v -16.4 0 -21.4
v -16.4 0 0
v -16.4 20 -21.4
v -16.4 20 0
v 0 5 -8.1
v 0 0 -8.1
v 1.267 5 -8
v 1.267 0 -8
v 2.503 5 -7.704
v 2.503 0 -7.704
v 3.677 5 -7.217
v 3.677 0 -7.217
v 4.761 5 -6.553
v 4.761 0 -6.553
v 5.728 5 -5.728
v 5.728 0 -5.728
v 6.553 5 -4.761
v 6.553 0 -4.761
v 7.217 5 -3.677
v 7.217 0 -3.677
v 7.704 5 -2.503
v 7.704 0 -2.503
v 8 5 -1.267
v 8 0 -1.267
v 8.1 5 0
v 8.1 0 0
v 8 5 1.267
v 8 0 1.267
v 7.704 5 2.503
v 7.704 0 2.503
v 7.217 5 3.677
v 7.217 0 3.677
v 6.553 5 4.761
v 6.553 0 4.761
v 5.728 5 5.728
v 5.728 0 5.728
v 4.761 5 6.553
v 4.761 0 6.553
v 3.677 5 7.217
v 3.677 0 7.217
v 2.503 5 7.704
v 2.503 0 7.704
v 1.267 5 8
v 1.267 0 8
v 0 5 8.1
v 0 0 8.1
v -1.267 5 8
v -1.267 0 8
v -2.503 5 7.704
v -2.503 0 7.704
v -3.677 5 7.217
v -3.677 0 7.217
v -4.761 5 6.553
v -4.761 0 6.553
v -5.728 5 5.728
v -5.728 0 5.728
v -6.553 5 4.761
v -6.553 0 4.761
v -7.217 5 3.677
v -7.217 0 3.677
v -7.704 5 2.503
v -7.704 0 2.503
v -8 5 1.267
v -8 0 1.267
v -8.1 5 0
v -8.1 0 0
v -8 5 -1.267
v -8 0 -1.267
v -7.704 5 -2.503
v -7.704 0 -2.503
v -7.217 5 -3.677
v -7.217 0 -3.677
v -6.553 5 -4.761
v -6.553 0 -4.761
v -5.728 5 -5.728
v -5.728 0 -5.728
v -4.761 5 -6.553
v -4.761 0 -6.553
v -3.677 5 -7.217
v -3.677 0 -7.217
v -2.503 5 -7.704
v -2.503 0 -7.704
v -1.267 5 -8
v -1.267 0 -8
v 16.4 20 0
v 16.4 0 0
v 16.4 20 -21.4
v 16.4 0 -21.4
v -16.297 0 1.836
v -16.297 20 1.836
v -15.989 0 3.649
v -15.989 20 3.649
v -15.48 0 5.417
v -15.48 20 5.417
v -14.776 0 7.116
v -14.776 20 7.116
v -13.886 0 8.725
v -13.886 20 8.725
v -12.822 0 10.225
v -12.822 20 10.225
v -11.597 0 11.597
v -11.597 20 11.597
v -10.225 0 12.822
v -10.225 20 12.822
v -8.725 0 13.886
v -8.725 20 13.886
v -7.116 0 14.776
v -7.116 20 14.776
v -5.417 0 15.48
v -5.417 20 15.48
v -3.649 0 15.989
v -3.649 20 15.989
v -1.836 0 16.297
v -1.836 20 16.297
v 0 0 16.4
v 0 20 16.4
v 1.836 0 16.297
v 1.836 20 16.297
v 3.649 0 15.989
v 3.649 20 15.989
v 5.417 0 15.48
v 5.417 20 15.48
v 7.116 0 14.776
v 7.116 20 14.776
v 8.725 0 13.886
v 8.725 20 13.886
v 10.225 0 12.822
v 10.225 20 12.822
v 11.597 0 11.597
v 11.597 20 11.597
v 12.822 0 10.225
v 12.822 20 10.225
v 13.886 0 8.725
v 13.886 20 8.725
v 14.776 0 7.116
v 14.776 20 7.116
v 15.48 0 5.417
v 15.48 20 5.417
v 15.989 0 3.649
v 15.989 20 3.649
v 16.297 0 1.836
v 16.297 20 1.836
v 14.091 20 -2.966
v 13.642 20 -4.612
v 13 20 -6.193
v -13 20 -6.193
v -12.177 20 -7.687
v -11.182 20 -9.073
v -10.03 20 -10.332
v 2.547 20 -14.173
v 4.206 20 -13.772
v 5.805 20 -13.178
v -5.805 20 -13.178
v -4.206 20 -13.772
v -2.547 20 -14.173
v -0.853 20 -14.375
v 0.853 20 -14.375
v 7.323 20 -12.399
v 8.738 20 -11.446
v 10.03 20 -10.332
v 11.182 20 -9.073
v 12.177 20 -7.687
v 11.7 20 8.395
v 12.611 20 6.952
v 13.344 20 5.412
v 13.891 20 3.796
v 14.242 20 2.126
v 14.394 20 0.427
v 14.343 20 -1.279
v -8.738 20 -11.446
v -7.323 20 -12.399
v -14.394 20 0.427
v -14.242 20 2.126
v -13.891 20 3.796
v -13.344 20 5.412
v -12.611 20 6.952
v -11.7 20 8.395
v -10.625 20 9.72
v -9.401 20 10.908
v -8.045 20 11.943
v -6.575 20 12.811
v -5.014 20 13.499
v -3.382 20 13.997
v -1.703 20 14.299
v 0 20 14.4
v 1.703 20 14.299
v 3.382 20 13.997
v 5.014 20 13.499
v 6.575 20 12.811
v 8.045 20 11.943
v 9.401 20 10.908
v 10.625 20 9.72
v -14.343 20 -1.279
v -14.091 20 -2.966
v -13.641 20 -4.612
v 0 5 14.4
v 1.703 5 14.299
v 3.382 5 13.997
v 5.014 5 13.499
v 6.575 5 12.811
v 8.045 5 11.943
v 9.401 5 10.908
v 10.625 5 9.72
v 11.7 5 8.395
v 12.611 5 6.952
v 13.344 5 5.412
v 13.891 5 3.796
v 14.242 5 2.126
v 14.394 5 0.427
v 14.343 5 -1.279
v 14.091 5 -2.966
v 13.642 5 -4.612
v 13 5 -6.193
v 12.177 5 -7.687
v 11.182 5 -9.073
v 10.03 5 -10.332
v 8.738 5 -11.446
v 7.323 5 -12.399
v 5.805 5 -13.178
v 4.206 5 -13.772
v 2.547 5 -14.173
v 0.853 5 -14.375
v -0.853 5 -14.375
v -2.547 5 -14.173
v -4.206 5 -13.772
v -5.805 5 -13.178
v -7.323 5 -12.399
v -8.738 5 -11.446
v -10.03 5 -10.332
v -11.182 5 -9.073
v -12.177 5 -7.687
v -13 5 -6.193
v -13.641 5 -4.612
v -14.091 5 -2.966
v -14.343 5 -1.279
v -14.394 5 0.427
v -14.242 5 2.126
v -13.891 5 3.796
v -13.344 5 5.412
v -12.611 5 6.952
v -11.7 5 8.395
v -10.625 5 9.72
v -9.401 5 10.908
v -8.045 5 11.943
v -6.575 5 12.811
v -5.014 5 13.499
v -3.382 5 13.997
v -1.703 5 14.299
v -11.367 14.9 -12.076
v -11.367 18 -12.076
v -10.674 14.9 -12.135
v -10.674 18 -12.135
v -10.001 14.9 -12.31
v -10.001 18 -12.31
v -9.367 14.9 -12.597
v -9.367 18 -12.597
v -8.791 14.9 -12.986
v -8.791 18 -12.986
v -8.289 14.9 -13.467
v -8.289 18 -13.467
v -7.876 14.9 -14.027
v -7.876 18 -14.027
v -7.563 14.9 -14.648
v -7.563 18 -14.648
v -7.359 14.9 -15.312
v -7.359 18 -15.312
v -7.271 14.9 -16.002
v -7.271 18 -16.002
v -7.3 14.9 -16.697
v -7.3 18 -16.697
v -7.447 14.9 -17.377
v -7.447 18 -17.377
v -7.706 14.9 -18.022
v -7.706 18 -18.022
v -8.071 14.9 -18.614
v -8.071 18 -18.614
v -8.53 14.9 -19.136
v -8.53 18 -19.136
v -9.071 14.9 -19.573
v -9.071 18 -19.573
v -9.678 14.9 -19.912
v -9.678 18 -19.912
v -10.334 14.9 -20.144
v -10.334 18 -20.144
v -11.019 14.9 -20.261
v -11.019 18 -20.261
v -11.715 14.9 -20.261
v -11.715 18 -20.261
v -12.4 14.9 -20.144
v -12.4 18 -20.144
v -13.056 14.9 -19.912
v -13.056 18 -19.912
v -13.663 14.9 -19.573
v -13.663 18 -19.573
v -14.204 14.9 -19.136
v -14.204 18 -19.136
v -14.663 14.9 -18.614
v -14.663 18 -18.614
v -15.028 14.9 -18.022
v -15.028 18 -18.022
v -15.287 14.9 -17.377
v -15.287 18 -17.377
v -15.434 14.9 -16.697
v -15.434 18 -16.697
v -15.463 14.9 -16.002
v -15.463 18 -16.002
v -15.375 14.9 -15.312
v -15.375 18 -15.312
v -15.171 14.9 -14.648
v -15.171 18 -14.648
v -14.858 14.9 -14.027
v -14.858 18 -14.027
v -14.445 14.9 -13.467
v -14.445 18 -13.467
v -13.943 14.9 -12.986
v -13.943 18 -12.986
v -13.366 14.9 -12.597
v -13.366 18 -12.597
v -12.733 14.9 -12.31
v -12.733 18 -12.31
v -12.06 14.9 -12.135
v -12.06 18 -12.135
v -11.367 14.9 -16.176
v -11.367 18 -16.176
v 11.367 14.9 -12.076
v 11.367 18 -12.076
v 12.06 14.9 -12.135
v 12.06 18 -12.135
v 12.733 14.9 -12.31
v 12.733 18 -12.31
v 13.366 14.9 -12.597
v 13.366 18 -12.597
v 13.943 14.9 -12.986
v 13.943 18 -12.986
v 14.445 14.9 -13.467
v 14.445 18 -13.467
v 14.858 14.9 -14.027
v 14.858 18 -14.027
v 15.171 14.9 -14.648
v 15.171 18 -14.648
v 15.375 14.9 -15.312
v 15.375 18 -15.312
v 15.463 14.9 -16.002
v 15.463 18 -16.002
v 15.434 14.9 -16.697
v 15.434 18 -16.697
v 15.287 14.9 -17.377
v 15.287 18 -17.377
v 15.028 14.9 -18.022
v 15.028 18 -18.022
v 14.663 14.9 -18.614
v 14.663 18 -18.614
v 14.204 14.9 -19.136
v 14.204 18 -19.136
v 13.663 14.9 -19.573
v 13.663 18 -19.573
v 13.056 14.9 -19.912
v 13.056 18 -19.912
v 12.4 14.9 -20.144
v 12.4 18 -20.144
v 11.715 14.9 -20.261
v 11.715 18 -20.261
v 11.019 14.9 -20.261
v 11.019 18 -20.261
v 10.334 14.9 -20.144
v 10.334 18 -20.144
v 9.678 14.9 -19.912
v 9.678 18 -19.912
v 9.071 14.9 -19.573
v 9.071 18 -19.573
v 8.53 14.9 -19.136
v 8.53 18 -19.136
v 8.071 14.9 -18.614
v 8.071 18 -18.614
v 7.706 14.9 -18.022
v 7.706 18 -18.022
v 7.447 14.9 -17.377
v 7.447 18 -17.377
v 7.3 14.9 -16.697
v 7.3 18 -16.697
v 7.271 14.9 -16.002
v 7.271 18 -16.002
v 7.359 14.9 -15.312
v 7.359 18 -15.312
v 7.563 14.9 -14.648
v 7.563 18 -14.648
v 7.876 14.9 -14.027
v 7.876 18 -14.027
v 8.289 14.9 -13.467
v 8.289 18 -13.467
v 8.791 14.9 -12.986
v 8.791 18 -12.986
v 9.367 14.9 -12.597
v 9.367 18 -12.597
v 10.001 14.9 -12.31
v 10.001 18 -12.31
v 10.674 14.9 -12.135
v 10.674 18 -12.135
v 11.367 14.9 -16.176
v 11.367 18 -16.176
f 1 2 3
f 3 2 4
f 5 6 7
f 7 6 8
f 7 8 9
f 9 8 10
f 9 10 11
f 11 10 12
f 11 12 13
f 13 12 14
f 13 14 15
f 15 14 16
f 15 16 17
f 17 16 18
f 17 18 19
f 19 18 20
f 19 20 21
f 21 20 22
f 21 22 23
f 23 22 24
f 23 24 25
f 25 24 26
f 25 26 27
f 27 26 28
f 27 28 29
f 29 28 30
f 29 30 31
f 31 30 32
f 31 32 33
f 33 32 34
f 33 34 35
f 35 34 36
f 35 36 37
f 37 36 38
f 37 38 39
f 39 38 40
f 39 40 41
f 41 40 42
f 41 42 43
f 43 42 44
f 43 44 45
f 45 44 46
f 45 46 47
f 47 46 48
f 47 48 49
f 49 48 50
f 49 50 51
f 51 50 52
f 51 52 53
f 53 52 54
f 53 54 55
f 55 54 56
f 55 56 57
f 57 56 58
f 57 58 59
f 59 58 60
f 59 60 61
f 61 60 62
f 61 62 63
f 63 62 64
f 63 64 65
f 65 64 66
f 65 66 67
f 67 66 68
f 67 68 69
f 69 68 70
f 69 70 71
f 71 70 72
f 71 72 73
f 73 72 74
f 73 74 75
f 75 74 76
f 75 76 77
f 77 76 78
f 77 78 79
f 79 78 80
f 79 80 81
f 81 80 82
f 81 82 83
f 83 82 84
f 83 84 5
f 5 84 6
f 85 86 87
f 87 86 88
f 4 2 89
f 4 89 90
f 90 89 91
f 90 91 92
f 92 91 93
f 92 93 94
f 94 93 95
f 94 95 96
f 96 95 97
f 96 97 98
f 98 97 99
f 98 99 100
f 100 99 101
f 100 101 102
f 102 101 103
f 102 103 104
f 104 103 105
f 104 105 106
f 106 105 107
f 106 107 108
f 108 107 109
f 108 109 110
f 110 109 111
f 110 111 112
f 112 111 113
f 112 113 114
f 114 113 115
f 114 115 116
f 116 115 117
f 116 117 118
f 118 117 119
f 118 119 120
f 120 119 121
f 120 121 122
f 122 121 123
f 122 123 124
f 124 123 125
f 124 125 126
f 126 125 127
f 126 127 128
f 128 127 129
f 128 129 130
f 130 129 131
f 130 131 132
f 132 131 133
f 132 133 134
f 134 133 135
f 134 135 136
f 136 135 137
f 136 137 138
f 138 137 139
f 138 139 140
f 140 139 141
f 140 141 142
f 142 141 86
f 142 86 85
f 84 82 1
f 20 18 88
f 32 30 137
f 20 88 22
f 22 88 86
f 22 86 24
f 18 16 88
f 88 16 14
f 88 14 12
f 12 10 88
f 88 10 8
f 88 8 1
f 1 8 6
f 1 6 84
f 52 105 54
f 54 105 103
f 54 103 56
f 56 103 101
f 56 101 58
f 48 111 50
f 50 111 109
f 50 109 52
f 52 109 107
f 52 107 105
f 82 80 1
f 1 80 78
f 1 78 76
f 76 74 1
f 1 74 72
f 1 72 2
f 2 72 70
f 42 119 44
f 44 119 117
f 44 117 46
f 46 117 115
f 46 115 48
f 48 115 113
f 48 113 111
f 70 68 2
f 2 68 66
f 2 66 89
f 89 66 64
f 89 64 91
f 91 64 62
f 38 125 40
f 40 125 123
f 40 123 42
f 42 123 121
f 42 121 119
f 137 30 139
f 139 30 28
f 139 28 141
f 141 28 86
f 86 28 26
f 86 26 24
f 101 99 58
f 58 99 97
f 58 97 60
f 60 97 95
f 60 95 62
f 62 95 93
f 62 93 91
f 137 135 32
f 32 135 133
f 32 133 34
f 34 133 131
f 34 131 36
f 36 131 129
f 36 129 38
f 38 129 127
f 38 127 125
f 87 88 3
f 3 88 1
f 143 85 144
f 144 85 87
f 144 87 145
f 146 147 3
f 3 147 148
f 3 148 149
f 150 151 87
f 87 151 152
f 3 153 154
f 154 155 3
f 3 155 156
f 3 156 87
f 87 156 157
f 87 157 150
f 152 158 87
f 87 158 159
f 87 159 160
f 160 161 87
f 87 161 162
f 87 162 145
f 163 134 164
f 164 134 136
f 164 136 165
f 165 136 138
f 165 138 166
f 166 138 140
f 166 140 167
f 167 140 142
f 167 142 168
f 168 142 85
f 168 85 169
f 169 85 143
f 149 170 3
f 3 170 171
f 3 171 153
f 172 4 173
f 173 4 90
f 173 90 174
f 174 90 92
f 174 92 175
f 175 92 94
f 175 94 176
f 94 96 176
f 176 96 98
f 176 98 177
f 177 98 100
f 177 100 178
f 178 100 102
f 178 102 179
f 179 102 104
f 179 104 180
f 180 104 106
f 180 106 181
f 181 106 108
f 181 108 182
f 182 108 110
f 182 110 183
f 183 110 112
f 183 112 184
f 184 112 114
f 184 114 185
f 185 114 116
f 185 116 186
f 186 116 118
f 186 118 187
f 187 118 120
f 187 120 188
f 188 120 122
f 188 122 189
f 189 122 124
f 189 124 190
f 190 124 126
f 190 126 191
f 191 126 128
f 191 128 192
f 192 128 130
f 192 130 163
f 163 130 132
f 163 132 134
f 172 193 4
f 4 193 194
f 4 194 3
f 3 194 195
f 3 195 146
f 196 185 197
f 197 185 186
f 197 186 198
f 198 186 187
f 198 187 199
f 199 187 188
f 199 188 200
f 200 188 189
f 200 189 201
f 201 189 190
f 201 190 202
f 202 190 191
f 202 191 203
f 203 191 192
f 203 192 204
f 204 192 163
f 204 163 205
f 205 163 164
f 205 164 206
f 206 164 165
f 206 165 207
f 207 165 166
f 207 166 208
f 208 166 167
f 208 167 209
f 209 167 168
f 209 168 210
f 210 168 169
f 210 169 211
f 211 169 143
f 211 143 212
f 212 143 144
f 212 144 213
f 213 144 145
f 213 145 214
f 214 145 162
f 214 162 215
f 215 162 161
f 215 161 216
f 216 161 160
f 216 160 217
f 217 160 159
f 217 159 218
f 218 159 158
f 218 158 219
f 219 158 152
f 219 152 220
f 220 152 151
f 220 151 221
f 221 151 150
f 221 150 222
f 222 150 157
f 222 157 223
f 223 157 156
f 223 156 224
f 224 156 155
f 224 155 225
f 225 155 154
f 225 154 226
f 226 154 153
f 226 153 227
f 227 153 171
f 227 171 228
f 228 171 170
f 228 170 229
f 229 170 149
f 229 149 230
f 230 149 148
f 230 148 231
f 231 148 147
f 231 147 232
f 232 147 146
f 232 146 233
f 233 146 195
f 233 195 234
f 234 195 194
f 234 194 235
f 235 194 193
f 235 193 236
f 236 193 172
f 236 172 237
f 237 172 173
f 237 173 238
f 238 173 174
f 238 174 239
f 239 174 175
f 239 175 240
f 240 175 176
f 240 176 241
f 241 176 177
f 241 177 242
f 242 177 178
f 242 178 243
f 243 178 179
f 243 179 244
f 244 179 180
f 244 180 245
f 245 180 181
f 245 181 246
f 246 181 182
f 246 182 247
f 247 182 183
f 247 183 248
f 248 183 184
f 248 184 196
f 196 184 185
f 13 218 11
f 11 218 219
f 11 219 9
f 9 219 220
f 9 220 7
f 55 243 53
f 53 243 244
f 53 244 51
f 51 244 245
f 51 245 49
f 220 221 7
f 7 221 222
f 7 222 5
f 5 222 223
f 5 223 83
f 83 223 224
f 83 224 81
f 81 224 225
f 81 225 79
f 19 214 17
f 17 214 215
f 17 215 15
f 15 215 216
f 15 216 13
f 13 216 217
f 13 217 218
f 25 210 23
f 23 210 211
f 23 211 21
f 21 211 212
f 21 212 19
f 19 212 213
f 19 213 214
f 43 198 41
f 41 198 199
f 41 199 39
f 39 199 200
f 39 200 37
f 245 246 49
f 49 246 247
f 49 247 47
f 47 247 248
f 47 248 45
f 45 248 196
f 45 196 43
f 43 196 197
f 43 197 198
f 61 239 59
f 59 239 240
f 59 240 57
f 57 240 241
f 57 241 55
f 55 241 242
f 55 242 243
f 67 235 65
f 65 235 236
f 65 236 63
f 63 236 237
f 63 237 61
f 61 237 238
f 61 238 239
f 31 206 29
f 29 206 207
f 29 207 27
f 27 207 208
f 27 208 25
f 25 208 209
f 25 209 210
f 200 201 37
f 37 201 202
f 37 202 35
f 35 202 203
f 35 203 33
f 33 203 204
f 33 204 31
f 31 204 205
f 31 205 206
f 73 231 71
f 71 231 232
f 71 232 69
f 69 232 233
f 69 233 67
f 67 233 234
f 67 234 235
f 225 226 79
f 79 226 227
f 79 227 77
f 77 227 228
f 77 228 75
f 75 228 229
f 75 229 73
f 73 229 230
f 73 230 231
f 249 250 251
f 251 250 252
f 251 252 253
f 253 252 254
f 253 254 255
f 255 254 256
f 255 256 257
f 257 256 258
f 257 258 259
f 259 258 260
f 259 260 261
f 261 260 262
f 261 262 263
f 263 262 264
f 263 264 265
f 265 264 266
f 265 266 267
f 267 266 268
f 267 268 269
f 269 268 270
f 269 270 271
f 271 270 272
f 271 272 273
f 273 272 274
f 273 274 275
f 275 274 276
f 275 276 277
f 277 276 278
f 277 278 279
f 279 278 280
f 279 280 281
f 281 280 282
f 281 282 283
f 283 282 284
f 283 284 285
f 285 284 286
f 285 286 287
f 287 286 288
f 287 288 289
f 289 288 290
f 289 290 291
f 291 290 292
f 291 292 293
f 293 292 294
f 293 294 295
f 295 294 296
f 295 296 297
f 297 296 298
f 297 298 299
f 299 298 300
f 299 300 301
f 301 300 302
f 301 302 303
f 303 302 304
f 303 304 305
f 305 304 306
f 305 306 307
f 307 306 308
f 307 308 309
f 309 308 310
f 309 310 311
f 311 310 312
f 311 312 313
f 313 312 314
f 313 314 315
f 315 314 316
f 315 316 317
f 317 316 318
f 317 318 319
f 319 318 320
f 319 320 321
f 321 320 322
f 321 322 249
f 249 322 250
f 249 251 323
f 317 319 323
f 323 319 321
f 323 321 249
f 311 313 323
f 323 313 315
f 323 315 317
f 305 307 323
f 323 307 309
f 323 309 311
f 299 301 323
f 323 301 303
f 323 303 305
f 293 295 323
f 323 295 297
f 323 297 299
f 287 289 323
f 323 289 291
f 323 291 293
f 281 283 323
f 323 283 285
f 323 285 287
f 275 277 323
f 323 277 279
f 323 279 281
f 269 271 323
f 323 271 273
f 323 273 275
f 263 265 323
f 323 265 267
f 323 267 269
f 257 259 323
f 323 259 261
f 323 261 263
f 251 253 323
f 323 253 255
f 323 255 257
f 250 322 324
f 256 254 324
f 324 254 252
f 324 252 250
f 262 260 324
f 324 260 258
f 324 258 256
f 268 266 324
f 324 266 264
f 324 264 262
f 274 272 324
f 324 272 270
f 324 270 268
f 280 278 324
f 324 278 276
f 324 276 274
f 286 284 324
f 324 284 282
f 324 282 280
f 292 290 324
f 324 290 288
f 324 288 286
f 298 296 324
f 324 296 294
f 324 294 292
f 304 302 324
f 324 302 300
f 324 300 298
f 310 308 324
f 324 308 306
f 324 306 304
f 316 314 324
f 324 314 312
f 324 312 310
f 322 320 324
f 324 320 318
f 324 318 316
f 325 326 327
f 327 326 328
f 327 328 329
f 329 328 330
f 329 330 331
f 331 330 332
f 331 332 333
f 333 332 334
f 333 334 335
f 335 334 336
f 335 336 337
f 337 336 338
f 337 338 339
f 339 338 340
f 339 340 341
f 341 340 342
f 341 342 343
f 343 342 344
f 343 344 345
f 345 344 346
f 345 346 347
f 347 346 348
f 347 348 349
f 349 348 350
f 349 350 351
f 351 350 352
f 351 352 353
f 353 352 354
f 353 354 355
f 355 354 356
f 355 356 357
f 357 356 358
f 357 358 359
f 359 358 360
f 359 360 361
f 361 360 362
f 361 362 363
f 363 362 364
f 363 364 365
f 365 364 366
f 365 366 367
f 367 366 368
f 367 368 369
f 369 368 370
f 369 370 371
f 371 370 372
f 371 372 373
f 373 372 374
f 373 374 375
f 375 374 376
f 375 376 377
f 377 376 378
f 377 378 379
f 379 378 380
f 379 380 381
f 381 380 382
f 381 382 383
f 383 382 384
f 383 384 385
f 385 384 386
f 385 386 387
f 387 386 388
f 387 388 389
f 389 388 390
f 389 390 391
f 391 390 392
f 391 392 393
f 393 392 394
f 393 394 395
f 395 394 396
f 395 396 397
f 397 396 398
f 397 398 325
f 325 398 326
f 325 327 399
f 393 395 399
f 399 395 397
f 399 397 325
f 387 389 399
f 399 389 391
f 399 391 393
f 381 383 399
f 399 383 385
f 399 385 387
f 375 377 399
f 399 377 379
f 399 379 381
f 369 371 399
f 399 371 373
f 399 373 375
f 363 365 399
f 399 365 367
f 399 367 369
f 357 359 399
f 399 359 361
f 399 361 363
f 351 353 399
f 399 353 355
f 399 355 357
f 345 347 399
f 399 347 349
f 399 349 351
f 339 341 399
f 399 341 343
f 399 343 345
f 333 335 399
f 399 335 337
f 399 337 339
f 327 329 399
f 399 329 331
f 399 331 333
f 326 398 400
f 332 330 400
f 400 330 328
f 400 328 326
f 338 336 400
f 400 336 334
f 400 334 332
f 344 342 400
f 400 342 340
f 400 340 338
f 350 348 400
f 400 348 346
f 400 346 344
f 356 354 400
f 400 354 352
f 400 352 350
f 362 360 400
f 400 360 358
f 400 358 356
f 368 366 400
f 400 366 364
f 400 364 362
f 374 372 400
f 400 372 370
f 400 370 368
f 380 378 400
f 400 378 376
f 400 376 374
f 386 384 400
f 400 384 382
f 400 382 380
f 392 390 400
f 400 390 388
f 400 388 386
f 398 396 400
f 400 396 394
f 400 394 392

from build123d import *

# Parameters (mm, degrees)
SKETCH1_R           = 8.1
BOSS_EXTRUDE1_DEPTH = 100
SKETCH2_R           = 14.4
CUT_EXTRUDE1_DEPTH  = 80
CUT_EXTRUDE2_START  = -80
CUT_EXTRUDE2_DEPTH  = 80
SKETCH4_R           = 14.4
CUT_EXTRUDE3_DEPTH  = 15
SKETCH8_W           = 32.8
SKETCH8_H           = 80
CUT_EXTRUDE4_DEPTH  = 106.913171985
CUT_EXTRUDE5_START  = -2
SKETCH9_R           = 4.1
CUT_EXTRUDE5_DEPTH  = 3.1


with BuildPart() as part:
    # Sketch1 → Boss-Extrude1 (new body)
    with BuildSketch(Plane(origin=(0, 0, 0), x_dir=(1, 0, 0), z_dir=(0, 1, 0))):
        with BuildLine():
            Line((-16.4, 0), (-16.4, 21.4))
            Line((-16.4, 21.4), (16.4, 21.4))
            Line((16.4, 21.4), (16.4, 0))
            ThreePointArc((16.4, 0), (0, -16.4), (-16.4, 0))
        make_face()
        with Locations(Location((0, 0, 0), (0, 0, 270))):
            Circle(SKETCH1_R, mode=Mode.SUBTRACT)
    extrude(amount=BOSS_EXTRUDE1_DEPTH)

    # Sketch2 → Cut-Extrude1 (cut)
    with BuildSketch(Plane(origin=(0, 100, 0), x_dir=(1, 0, 0), z_dir=(0, 1, 0))):
        with Locations(Location((0, 0, 0), (0, 0, 270))):
            Circle(SKETCH2_R)
    extrude(amount=-CUT_EXTRUDE1_DEPTH, mode=Mode.SUBTRACT)

    # Sketch3 → Cut-Extrude2 (cut)
    with BuildSketch(Plane(origin=(0, 100, 0), x_dir=(1, 0, 0), z_dir=(0, 1, 0)).offset(CUT_EXTRUDE2_START)):
        with BuildLine():
            Line((-16.4, 0), (-16.4, 14.4))
            Line((-16.4, 14.4), (16.4, 14.4))
            Line((16.4, 14.4), (16.4, 0))
            ThreePointArc((16.4, 0), (0, -16.4), (-16.4, 0))
        make_face()
    extrude(amount=CUT_EXTRUDE2_DEPTH, mode=Mode.SUBTRACT)

    # Sketch4 → Cut-Extrude3 (cut)
    with BuildSketch(Plane(origin=(0, 20, 0), x_dir=(1, 0, 0), z_dir=(0, 1, 0))):
        with Locations(Location((0, 0, 0), (0, 0, 270))):
            Circle(SKETCH4_R)
    extrude(amount=-CUT_EXTRUDE3_DEPTH, mode=Mode.SUBTRACT)

    # Sketch8 → Cut-Extrude4 (cut, through all)
    with BuildSketch(Plane.XY.offset(-14.4)):
        with Locations((0, 60)):
            Rectangle(SKETCH8_W, SKETCH8_H)
    extrude(amount=-CUT_EXTRUDE4_DEPTH, mode=Mode.SUBTRACT)

    # Sketch9 → Cut-Extrude5 (cut)
    with BuildSketch(Plane(origin=(0, 20, 0), x_dir=(1, 0, 0), z_dir=(0, 1, 0)).offset(CUT_EXTRUDE5_START)):
        with Locations(Location((-11.366921431, 16.176228268, 0), (0, 0, 270))):
            Circle(SKETCH9_R)
    cut_extrude5 = extrude(amount=-CUT_EXTRUDE5_DEPTH, mode=Mode.SUBTRACT)

    # Mirror1: Cut-Extrude5 across plane
    add(cut_extrude5.mirror(Plane(origin=(0, 0, 0), x_dir=(0, 0, 1), z_dir=(1, 0, 0))), mode=Mode.SUBTRACT)


solid = part.part
